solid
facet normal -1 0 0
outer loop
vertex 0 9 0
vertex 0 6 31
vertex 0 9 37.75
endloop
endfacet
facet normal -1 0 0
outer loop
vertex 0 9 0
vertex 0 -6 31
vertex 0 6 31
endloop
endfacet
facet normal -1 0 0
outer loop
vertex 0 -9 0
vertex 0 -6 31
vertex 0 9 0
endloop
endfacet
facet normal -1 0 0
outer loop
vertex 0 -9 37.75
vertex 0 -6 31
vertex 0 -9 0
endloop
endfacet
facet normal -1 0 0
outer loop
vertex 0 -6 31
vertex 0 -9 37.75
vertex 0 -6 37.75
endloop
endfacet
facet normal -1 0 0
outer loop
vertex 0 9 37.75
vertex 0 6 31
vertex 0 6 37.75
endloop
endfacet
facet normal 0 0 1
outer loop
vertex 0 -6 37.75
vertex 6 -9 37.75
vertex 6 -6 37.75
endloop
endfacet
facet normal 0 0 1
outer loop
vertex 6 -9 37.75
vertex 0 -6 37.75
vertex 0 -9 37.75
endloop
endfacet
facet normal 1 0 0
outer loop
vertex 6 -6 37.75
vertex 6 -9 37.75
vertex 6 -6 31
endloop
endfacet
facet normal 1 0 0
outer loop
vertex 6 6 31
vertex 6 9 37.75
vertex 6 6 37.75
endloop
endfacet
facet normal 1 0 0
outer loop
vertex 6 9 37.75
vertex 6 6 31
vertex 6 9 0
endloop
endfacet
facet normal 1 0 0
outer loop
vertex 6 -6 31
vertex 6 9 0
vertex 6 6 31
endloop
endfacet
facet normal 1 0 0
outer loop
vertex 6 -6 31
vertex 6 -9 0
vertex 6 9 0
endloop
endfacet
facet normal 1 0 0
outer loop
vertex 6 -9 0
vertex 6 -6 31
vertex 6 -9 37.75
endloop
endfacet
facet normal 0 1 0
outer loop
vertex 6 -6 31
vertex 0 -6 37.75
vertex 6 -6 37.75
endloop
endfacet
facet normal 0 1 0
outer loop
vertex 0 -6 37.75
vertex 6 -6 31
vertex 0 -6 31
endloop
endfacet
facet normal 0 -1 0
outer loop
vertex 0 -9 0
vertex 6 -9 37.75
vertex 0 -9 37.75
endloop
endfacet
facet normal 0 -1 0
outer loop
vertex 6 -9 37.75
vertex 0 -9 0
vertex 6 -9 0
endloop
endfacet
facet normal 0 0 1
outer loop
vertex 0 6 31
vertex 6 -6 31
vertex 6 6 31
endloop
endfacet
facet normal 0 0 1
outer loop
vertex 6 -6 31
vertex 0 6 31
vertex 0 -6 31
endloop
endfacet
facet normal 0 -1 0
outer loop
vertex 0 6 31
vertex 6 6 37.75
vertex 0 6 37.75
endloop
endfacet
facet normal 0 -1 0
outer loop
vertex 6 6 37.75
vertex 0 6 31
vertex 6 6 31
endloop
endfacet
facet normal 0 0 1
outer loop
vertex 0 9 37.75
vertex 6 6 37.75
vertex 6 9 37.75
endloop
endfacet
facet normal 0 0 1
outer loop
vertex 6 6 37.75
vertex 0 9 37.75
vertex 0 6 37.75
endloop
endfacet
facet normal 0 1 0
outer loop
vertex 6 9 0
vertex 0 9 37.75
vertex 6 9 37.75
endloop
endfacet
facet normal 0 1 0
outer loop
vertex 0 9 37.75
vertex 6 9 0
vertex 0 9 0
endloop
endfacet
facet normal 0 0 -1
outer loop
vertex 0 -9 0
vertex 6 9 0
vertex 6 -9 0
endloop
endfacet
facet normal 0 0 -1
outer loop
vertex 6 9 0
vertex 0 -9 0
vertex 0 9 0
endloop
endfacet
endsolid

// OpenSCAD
pot_width = 9.75;
pot_height = 12;
pot_length= 4;
pot_holder_width = 3;

wheel_radius = 25;
wheel_radius_raise = 3;

skewer_radius = 4.5/2;
skewer_rim = 1.0;
pot_ext = 2;

$fn = 50;

module PotHolderSide() {
    pot_length_ext = pot_length + pot_ext;
    translate([0, -pot_height/2  - pot_holder_width, 0])
    {
        cube([pot_length_ext, pot_holder_width, pot_width], false);
        translate([0, pot_holder_width, 0]) {
            cube([pot_length_ext, pot_height, pot_holder_width], false);
        }
    }
    translate([0, pot_height/2, 0])
    {
        cube([pot_length_ext, pot_holder_width, pot_width], false);       
    }
}

module PotHolderPlatform() 
{
    pot_length_ext = pot_length + pot_ext;
    platform_height = wheel_radius_raise + wheel_radius;
    cube([pot_length_ext, pot_height/2 + pot_holder_width, platform_height]);
    translate([0, -(pot_height/2 + pot_holder_width), 0]) {
        cube([pot_length_ext, pot_height/2 + pot_holder_width, platform_height]);
    }
    translate([0, 0, platform_height]) 
    {
        PotHolderSide();
    }
}

PotHolderPlatform();
